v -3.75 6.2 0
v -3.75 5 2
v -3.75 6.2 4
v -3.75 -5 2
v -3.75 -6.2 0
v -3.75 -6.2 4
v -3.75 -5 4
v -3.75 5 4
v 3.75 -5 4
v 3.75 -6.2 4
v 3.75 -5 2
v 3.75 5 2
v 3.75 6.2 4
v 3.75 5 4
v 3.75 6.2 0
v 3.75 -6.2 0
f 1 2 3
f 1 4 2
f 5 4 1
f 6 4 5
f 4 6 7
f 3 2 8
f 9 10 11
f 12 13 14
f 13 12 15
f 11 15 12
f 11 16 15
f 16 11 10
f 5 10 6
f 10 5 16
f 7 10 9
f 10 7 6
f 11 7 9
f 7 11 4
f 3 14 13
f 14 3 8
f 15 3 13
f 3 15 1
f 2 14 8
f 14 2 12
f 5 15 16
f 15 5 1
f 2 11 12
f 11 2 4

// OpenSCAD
// Medify - Magnet pocket press-fit cover

$fn = 60;

cover_w = 12.4;
cover_d = 7.5;
cover_t = 2;

wing_t = 1.2;
wing_press = 0;

module top_cover() {

    translate([-cover_d/2, -cover_w/2, 0])
        cube([cover_d, cover_w, cover_t]);
}

module side_wings() {

    translate([-cover_d/2, cover_w/2 - wing_t + wing_press, -2])
        cube([cover_d, wing_t, 3.5]);

    translate([-cover_d/2, -cover_w/2 - wing_press, -2])
        cube([cover_d, wing_t, 3.5]);
}

module MagnetPocketCover2() {

    top_cover();

    side_wings();
}

rotate([180, 0, 0])
    translate([0, 0, -2])
        MagnetPocketCover2();
